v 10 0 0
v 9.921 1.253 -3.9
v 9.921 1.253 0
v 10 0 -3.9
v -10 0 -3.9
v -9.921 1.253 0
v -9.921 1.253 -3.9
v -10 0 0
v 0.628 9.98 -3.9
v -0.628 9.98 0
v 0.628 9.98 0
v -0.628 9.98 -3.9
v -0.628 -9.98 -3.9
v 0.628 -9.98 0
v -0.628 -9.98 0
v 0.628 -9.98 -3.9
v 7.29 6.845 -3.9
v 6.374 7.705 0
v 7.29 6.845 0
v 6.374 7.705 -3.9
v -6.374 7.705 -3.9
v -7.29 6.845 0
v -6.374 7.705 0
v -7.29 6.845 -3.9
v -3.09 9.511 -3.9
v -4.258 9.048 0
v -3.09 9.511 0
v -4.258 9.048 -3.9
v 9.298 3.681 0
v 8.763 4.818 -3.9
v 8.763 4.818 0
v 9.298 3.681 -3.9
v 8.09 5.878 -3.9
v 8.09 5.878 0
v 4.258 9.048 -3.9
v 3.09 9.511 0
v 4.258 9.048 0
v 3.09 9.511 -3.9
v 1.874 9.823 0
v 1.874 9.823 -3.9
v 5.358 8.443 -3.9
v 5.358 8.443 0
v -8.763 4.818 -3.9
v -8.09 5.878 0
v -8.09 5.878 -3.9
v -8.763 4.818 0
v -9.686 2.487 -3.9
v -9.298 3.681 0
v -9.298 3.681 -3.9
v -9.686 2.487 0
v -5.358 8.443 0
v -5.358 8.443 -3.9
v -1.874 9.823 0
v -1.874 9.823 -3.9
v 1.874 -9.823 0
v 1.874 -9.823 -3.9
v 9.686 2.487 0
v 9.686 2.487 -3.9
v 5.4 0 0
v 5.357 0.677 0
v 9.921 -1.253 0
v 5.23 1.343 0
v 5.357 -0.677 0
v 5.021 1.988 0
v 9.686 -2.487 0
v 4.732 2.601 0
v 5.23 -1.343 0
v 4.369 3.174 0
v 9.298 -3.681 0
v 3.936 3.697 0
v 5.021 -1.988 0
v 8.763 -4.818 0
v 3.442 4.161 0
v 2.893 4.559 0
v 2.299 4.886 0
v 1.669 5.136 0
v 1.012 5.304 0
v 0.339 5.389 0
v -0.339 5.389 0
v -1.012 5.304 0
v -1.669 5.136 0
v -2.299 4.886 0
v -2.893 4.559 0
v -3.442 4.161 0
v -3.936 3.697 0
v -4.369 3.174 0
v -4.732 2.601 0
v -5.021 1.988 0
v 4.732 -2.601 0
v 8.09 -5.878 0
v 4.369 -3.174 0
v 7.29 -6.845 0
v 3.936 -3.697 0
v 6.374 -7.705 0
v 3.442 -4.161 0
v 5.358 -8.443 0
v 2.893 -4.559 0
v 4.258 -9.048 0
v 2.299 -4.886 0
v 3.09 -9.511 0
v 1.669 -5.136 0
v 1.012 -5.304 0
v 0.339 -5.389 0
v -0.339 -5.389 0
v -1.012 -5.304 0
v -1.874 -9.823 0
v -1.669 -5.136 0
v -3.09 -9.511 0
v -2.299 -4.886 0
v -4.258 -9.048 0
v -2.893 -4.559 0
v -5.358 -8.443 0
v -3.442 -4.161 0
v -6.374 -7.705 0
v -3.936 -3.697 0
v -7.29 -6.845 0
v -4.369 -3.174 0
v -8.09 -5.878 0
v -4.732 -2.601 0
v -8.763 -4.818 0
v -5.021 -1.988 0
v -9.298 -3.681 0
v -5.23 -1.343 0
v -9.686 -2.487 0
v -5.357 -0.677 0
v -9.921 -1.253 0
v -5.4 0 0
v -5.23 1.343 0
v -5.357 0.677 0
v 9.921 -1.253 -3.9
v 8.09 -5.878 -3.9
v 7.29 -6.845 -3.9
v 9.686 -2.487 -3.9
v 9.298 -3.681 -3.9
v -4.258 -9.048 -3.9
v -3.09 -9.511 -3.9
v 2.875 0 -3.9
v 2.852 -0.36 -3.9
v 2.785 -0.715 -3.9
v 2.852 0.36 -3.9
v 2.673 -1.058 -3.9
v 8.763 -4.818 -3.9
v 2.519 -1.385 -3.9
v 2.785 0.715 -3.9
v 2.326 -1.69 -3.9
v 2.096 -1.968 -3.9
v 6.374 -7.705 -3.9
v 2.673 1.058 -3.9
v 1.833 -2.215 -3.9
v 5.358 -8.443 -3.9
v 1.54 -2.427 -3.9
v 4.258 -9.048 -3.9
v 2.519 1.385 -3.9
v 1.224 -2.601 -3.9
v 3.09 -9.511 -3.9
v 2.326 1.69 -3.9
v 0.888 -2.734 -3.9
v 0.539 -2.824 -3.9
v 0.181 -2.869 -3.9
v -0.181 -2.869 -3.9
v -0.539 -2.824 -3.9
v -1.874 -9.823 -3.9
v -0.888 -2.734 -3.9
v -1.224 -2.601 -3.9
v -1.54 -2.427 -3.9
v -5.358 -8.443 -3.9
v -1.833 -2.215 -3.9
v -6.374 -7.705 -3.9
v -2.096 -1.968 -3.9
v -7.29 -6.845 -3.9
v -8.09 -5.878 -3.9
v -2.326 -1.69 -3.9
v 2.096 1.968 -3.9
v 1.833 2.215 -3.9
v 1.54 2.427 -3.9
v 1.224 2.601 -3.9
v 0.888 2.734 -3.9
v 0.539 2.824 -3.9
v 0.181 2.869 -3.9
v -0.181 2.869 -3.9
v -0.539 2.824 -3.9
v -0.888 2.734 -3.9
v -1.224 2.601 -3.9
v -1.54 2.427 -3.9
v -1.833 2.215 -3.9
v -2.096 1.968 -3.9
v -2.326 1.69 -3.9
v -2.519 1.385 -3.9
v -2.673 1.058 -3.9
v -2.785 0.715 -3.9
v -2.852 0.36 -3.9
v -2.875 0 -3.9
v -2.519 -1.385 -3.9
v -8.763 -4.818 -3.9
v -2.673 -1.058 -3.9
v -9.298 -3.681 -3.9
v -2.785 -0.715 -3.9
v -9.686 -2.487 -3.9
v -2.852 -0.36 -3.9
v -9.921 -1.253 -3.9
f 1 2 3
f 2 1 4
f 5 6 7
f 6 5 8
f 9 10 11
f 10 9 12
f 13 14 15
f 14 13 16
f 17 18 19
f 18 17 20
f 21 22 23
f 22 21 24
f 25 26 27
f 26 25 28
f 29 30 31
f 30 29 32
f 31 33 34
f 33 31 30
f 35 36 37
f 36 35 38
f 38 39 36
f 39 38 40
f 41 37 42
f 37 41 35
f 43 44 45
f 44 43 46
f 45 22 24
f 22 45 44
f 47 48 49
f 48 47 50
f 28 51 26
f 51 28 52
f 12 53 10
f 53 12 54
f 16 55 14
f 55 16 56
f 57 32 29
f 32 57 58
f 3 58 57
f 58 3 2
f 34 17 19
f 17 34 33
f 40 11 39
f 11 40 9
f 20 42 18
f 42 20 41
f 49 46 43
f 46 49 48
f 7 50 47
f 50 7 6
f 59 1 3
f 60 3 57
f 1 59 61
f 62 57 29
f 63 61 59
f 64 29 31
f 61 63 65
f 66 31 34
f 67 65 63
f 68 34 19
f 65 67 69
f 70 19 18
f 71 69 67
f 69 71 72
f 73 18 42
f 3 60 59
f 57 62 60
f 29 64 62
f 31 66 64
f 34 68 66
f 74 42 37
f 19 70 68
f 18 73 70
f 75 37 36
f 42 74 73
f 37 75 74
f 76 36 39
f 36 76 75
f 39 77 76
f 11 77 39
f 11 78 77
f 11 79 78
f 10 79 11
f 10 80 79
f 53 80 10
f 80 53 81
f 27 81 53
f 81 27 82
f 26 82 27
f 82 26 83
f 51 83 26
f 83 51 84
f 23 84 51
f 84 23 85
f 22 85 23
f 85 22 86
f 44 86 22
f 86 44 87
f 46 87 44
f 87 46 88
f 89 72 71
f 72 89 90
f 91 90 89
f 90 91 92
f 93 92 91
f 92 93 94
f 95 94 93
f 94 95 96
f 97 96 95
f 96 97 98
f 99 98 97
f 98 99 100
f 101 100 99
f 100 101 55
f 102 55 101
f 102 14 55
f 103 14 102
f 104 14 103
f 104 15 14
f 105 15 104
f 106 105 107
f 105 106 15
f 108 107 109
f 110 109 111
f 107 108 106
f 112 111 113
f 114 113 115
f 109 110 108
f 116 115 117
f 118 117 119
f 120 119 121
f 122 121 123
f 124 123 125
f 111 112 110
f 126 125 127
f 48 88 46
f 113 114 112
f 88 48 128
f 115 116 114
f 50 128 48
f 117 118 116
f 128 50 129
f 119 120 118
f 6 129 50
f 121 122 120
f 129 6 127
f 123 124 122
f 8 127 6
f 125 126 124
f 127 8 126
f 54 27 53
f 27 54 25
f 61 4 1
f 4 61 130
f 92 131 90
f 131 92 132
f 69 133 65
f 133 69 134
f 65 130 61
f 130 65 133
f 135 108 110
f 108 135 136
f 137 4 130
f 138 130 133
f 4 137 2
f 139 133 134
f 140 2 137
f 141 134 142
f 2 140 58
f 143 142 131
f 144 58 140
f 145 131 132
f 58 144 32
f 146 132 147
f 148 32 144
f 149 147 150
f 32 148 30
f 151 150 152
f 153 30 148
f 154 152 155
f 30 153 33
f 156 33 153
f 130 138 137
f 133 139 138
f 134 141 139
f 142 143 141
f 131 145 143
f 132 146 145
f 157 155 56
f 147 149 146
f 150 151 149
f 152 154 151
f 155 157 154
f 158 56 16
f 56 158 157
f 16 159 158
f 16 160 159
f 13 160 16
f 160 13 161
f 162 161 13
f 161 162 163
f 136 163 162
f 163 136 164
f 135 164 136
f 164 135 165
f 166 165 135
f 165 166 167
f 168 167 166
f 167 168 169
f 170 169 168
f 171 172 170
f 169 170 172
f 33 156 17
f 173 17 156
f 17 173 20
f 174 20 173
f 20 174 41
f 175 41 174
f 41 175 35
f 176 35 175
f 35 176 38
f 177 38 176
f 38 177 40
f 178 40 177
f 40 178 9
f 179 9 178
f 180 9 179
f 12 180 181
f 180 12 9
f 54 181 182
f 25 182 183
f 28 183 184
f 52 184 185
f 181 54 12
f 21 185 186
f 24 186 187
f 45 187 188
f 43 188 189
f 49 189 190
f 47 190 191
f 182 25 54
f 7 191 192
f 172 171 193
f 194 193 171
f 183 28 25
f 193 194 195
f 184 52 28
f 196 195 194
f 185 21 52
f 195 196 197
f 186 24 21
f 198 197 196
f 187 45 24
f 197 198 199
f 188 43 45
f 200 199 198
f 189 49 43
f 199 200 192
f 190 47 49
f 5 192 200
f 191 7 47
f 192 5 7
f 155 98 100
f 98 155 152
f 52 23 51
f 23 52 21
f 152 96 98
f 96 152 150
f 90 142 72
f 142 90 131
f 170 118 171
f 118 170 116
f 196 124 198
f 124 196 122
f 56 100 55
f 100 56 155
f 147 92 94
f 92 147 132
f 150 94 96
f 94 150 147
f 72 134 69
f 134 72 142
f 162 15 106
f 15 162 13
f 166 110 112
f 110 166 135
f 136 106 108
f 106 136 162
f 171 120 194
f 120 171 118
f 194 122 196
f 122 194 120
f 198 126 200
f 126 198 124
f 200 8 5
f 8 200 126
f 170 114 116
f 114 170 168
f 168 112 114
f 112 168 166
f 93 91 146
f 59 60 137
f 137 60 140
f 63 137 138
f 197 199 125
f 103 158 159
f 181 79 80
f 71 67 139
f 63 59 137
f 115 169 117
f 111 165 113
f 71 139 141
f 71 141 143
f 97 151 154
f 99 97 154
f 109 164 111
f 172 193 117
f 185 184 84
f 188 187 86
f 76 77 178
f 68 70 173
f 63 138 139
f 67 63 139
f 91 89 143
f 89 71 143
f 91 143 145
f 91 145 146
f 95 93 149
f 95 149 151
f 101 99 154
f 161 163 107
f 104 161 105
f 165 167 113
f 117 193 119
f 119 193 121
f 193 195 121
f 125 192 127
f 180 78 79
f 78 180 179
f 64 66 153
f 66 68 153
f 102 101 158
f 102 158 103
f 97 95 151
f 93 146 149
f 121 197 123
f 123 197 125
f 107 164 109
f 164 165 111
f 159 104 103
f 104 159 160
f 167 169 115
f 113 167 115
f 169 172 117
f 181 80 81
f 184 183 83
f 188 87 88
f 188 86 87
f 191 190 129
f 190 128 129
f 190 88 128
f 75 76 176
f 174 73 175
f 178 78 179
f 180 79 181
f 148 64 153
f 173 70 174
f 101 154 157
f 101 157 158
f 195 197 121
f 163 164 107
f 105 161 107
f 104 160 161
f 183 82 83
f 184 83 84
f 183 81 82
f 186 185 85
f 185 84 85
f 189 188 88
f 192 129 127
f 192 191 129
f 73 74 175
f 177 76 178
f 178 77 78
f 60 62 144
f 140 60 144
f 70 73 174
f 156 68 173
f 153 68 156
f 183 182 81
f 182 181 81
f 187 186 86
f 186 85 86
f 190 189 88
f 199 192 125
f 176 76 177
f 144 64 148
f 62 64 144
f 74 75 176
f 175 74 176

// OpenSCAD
$fn = 50;

difference() {
	union() {
		translate(v = [0, 0, -3.9]) {
			cylinder(h = 3.9, r = 10.0);
		}
		#translate(v = [0, 0, -6.9]) {
			cylinder(h = 6.9, r = 2.875);
		}
	}
	union() {
		translate(v = [0, 0, 0]) {
			rotate(a = [0, 0, 0]) {
				difference() {
					union() {
						translate(v = [0, 0, -6.9]) {
							cylinder(h = 6.9, r = 2.6);
						}
						translate(v = [0, 0, -3.9]) {
							cylinder(h = 3.9, r1 = 2.875, r2 = 5.4);
						}
						translate(v = [0, 0, -6.9]) {
							cylinder(h = 6.9, r = 2.875);
						}
						translate(v = [0, 0, -6.9]) {
							cylinder(h = 6.9, r = 2.6);
						}
					}
					union();
				}
			}
		}
	}
}
